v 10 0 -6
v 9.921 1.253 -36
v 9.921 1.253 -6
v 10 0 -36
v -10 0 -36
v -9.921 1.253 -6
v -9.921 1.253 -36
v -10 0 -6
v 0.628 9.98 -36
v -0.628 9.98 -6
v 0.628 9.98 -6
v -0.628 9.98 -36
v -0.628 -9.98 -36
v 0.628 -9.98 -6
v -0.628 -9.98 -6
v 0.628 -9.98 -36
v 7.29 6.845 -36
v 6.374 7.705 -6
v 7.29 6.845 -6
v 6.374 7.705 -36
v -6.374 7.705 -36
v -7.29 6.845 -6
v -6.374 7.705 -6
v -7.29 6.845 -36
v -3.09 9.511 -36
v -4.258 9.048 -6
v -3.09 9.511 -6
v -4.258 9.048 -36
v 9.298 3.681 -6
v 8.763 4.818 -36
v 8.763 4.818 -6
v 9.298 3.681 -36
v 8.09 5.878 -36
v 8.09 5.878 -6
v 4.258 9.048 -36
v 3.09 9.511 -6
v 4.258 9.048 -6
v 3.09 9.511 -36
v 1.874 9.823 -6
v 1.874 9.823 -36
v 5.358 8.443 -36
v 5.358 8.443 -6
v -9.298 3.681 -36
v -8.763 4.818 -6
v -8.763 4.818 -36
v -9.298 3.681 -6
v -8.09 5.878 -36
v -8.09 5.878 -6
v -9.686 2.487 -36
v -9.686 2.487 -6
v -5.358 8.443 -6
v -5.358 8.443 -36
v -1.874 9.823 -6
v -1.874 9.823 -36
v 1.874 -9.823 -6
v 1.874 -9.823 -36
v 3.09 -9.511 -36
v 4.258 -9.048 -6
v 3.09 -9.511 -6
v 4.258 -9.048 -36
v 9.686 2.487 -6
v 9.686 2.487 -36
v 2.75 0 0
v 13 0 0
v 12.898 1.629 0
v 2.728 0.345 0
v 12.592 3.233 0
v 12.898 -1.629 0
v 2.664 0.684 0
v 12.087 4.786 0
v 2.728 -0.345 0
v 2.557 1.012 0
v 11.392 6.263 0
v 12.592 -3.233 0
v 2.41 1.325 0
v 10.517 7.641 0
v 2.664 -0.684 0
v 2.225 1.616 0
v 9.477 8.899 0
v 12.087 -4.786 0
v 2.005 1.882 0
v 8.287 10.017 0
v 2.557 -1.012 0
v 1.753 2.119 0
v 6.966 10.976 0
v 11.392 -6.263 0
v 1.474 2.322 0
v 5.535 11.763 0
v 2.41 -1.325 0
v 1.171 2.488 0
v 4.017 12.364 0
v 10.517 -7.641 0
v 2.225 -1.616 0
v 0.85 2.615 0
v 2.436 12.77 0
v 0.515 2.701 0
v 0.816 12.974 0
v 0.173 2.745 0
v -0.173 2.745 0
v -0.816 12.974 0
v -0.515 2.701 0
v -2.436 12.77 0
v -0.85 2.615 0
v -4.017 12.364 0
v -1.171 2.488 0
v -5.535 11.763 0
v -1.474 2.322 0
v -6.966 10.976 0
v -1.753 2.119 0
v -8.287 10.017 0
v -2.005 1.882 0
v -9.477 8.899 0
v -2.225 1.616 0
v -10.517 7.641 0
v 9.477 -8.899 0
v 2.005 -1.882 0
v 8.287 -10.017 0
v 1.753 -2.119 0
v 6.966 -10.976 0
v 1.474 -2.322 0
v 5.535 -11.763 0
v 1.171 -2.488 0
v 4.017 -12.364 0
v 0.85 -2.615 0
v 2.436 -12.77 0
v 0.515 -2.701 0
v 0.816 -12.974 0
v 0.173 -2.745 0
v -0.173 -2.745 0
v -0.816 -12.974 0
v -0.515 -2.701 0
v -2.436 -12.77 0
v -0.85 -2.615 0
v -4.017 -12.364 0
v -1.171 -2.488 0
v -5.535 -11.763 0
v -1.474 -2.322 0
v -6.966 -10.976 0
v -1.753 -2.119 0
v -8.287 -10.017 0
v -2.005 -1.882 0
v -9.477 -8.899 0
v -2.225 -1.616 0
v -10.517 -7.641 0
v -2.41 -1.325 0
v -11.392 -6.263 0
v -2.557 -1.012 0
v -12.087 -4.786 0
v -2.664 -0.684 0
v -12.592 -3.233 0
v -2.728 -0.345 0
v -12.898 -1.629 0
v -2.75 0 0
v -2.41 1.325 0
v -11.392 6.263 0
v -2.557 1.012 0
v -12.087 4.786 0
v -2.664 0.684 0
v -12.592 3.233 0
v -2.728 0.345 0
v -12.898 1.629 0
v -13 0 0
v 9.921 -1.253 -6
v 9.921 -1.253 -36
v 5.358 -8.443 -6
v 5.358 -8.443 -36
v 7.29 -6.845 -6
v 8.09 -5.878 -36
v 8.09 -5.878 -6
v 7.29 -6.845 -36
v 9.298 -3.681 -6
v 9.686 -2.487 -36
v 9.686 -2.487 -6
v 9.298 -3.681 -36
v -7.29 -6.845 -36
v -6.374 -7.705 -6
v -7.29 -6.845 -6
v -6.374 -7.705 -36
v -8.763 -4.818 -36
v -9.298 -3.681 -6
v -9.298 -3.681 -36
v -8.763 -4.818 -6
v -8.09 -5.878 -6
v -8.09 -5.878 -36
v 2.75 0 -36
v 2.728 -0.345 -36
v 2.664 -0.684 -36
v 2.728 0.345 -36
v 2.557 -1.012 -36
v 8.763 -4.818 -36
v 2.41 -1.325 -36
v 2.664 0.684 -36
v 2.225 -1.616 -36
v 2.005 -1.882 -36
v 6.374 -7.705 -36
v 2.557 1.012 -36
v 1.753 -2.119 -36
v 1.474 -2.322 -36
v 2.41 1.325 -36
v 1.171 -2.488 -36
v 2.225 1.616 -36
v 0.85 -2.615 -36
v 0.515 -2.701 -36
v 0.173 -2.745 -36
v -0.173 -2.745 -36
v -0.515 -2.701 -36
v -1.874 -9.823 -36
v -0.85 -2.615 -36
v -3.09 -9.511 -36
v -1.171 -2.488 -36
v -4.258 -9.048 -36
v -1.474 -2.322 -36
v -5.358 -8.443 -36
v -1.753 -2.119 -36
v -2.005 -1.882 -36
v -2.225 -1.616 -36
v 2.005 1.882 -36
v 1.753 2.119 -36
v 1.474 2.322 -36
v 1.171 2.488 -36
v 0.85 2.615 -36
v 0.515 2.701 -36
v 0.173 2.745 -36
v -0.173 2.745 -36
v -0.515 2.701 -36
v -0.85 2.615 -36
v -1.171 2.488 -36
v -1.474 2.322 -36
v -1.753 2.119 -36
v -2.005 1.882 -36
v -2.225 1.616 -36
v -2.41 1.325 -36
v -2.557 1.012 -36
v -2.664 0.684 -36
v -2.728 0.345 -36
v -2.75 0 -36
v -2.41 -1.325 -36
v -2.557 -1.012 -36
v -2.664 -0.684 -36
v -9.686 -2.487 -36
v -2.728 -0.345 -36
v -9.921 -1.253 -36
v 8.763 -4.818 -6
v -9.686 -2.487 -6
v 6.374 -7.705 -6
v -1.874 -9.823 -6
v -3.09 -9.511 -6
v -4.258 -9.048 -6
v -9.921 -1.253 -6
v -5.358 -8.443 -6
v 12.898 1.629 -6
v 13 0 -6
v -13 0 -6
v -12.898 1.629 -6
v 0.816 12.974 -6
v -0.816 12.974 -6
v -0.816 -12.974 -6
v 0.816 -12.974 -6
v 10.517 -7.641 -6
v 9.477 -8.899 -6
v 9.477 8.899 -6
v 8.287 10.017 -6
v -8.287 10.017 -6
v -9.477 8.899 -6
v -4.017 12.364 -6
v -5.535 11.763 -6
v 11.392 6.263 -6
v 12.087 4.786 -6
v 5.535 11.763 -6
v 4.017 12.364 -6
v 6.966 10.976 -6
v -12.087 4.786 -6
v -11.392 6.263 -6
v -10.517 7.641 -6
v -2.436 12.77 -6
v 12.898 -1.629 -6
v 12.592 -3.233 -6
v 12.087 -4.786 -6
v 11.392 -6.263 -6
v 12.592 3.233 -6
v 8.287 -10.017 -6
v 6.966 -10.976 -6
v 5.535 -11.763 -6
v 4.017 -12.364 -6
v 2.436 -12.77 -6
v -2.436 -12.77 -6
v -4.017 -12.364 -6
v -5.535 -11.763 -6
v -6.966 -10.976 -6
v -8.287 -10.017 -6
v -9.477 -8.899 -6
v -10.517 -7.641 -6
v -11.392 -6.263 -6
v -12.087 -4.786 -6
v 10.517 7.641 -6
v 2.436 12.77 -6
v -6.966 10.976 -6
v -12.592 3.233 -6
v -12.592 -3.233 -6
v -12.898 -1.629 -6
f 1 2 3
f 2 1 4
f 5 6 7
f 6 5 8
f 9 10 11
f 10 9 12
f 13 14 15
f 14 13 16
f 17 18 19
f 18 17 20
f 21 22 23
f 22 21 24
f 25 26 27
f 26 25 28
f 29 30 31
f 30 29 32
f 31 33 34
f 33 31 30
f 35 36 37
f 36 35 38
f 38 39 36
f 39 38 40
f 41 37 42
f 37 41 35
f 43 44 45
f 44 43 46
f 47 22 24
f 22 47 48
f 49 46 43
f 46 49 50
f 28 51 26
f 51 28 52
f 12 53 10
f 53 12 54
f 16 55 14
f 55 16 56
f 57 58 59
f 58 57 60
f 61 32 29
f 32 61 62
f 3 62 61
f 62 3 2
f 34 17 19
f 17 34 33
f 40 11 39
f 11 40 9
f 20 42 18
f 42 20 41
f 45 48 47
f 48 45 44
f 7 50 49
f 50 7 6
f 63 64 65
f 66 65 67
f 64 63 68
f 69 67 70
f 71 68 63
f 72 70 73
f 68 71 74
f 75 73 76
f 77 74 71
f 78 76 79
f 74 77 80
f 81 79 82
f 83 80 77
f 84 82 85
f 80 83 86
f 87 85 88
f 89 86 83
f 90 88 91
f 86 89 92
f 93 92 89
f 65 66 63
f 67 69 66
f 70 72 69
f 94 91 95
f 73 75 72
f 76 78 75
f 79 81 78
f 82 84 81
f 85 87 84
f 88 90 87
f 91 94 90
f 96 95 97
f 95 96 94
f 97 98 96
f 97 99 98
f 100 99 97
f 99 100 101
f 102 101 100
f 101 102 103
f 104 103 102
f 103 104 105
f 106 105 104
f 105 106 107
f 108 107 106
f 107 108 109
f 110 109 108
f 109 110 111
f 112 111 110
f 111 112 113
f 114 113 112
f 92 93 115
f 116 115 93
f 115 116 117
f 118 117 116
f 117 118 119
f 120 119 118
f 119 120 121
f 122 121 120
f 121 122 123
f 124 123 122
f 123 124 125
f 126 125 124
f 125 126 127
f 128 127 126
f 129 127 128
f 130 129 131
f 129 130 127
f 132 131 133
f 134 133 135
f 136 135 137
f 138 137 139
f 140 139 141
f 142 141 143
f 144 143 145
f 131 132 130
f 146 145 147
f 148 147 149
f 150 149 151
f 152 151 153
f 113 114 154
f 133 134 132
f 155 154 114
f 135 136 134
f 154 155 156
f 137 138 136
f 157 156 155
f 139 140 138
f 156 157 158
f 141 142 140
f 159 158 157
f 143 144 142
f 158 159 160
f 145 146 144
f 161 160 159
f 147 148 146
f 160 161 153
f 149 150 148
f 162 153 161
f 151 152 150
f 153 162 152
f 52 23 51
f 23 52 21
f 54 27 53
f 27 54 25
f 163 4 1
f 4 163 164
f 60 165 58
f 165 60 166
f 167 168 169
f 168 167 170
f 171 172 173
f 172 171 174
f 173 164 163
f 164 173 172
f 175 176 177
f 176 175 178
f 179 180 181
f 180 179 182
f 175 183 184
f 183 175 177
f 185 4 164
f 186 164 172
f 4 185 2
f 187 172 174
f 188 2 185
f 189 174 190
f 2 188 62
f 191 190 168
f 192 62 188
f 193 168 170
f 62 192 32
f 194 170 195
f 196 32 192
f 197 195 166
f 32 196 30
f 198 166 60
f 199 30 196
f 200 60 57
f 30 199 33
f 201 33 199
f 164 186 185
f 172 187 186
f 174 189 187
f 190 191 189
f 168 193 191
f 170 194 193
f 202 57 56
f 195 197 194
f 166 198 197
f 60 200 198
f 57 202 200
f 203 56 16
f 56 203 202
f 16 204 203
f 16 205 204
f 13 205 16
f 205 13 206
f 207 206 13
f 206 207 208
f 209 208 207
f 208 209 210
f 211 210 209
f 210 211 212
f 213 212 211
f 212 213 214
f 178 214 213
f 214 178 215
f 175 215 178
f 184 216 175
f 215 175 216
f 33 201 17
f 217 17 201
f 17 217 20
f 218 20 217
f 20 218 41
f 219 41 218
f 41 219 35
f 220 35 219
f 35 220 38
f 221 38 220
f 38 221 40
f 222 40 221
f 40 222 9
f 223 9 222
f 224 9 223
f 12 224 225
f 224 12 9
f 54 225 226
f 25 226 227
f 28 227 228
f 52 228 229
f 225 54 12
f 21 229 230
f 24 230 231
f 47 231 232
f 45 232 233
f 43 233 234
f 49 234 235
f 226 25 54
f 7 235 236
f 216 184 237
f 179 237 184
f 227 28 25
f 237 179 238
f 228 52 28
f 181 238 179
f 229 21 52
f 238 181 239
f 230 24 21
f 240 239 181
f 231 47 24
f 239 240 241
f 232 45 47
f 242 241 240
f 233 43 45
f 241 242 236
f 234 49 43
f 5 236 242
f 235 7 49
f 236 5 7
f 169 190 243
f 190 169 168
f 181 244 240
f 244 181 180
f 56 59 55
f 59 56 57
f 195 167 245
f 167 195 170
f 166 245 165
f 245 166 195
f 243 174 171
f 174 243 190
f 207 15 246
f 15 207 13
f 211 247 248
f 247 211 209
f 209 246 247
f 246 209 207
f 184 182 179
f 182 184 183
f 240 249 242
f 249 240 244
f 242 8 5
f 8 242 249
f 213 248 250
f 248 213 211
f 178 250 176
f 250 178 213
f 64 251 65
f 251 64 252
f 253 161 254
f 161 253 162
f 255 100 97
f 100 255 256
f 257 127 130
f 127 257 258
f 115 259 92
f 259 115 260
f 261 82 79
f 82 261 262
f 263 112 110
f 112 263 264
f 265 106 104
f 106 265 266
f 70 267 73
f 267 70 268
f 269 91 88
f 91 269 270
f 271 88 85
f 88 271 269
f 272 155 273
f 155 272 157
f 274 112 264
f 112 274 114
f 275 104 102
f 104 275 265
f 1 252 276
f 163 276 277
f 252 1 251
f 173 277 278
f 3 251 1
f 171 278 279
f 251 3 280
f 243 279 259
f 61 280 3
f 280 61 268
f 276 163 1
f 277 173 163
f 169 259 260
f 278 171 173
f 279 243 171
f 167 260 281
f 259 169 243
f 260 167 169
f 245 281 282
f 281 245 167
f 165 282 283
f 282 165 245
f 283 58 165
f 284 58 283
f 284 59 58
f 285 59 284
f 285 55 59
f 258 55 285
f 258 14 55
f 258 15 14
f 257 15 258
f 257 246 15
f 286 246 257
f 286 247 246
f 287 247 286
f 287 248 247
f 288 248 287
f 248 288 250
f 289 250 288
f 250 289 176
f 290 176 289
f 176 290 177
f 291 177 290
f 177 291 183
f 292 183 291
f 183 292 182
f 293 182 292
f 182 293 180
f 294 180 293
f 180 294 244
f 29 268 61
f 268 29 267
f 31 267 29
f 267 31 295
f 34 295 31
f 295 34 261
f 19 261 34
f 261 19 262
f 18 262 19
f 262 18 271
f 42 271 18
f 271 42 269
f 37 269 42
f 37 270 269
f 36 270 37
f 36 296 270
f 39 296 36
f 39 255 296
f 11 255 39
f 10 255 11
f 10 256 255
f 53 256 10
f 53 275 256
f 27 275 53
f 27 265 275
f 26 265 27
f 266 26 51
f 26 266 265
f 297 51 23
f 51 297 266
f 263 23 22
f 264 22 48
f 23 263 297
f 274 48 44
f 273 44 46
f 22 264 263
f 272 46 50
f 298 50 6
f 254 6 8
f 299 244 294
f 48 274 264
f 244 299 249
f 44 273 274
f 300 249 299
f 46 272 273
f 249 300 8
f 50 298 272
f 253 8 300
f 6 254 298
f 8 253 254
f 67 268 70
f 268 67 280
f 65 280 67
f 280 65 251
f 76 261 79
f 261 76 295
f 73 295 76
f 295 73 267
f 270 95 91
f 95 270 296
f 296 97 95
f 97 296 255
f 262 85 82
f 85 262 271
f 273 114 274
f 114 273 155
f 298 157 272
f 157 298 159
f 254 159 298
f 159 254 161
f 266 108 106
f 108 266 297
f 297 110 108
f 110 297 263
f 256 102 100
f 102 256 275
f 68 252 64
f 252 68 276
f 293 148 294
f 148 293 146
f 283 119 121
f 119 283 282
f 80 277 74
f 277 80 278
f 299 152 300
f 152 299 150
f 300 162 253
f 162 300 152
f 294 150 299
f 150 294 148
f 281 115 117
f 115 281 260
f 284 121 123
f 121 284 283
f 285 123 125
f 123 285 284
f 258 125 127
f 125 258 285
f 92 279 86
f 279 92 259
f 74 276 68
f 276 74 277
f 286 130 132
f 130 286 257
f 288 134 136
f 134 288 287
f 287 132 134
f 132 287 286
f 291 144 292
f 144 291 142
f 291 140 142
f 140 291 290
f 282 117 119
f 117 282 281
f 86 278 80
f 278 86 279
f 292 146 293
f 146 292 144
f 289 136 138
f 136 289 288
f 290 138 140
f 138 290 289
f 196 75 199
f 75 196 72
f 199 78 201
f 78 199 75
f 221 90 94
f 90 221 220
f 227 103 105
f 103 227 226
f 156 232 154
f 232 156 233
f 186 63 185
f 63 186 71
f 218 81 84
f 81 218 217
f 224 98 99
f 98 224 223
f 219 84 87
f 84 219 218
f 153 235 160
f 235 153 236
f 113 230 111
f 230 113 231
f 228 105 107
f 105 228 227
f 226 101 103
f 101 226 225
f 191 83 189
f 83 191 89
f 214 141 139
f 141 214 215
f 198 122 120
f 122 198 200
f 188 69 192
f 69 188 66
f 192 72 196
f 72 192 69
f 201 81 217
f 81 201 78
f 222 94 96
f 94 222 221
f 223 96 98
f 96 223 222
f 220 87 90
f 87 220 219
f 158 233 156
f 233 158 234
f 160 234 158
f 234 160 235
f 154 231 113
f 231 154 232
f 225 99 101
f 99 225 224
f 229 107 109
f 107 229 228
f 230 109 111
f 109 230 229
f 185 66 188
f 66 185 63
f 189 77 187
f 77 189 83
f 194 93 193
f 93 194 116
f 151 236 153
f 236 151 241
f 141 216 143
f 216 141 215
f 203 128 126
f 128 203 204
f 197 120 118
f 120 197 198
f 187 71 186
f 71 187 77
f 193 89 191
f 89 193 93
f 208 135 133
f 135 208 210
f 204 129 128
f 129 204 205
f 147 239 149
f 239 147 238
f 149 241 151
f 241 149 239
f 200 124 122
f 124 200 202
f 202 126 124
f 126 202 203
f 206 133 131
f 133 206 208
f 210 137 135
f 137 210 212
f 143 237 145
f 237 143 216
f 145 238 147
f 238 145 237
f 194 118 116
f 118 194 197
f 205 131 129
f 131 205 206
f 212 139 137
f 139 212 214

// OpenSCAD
$fn = 50;


difference() {
	union() {
		translate(v = [0, 0, -36.0000000000]) {
			cylinder(h = 36, r = 10.0000000000);
		}
		translate(v = [0, 0, -6.0000000000]) {
			cylinder(h = 6, r = 13.0000000000);
		}
	}
	union() {
		#translate(v = [0, 0, -36]) {
			cylinder(h = 36, r = 2.7500000000);
		}
	}
}
